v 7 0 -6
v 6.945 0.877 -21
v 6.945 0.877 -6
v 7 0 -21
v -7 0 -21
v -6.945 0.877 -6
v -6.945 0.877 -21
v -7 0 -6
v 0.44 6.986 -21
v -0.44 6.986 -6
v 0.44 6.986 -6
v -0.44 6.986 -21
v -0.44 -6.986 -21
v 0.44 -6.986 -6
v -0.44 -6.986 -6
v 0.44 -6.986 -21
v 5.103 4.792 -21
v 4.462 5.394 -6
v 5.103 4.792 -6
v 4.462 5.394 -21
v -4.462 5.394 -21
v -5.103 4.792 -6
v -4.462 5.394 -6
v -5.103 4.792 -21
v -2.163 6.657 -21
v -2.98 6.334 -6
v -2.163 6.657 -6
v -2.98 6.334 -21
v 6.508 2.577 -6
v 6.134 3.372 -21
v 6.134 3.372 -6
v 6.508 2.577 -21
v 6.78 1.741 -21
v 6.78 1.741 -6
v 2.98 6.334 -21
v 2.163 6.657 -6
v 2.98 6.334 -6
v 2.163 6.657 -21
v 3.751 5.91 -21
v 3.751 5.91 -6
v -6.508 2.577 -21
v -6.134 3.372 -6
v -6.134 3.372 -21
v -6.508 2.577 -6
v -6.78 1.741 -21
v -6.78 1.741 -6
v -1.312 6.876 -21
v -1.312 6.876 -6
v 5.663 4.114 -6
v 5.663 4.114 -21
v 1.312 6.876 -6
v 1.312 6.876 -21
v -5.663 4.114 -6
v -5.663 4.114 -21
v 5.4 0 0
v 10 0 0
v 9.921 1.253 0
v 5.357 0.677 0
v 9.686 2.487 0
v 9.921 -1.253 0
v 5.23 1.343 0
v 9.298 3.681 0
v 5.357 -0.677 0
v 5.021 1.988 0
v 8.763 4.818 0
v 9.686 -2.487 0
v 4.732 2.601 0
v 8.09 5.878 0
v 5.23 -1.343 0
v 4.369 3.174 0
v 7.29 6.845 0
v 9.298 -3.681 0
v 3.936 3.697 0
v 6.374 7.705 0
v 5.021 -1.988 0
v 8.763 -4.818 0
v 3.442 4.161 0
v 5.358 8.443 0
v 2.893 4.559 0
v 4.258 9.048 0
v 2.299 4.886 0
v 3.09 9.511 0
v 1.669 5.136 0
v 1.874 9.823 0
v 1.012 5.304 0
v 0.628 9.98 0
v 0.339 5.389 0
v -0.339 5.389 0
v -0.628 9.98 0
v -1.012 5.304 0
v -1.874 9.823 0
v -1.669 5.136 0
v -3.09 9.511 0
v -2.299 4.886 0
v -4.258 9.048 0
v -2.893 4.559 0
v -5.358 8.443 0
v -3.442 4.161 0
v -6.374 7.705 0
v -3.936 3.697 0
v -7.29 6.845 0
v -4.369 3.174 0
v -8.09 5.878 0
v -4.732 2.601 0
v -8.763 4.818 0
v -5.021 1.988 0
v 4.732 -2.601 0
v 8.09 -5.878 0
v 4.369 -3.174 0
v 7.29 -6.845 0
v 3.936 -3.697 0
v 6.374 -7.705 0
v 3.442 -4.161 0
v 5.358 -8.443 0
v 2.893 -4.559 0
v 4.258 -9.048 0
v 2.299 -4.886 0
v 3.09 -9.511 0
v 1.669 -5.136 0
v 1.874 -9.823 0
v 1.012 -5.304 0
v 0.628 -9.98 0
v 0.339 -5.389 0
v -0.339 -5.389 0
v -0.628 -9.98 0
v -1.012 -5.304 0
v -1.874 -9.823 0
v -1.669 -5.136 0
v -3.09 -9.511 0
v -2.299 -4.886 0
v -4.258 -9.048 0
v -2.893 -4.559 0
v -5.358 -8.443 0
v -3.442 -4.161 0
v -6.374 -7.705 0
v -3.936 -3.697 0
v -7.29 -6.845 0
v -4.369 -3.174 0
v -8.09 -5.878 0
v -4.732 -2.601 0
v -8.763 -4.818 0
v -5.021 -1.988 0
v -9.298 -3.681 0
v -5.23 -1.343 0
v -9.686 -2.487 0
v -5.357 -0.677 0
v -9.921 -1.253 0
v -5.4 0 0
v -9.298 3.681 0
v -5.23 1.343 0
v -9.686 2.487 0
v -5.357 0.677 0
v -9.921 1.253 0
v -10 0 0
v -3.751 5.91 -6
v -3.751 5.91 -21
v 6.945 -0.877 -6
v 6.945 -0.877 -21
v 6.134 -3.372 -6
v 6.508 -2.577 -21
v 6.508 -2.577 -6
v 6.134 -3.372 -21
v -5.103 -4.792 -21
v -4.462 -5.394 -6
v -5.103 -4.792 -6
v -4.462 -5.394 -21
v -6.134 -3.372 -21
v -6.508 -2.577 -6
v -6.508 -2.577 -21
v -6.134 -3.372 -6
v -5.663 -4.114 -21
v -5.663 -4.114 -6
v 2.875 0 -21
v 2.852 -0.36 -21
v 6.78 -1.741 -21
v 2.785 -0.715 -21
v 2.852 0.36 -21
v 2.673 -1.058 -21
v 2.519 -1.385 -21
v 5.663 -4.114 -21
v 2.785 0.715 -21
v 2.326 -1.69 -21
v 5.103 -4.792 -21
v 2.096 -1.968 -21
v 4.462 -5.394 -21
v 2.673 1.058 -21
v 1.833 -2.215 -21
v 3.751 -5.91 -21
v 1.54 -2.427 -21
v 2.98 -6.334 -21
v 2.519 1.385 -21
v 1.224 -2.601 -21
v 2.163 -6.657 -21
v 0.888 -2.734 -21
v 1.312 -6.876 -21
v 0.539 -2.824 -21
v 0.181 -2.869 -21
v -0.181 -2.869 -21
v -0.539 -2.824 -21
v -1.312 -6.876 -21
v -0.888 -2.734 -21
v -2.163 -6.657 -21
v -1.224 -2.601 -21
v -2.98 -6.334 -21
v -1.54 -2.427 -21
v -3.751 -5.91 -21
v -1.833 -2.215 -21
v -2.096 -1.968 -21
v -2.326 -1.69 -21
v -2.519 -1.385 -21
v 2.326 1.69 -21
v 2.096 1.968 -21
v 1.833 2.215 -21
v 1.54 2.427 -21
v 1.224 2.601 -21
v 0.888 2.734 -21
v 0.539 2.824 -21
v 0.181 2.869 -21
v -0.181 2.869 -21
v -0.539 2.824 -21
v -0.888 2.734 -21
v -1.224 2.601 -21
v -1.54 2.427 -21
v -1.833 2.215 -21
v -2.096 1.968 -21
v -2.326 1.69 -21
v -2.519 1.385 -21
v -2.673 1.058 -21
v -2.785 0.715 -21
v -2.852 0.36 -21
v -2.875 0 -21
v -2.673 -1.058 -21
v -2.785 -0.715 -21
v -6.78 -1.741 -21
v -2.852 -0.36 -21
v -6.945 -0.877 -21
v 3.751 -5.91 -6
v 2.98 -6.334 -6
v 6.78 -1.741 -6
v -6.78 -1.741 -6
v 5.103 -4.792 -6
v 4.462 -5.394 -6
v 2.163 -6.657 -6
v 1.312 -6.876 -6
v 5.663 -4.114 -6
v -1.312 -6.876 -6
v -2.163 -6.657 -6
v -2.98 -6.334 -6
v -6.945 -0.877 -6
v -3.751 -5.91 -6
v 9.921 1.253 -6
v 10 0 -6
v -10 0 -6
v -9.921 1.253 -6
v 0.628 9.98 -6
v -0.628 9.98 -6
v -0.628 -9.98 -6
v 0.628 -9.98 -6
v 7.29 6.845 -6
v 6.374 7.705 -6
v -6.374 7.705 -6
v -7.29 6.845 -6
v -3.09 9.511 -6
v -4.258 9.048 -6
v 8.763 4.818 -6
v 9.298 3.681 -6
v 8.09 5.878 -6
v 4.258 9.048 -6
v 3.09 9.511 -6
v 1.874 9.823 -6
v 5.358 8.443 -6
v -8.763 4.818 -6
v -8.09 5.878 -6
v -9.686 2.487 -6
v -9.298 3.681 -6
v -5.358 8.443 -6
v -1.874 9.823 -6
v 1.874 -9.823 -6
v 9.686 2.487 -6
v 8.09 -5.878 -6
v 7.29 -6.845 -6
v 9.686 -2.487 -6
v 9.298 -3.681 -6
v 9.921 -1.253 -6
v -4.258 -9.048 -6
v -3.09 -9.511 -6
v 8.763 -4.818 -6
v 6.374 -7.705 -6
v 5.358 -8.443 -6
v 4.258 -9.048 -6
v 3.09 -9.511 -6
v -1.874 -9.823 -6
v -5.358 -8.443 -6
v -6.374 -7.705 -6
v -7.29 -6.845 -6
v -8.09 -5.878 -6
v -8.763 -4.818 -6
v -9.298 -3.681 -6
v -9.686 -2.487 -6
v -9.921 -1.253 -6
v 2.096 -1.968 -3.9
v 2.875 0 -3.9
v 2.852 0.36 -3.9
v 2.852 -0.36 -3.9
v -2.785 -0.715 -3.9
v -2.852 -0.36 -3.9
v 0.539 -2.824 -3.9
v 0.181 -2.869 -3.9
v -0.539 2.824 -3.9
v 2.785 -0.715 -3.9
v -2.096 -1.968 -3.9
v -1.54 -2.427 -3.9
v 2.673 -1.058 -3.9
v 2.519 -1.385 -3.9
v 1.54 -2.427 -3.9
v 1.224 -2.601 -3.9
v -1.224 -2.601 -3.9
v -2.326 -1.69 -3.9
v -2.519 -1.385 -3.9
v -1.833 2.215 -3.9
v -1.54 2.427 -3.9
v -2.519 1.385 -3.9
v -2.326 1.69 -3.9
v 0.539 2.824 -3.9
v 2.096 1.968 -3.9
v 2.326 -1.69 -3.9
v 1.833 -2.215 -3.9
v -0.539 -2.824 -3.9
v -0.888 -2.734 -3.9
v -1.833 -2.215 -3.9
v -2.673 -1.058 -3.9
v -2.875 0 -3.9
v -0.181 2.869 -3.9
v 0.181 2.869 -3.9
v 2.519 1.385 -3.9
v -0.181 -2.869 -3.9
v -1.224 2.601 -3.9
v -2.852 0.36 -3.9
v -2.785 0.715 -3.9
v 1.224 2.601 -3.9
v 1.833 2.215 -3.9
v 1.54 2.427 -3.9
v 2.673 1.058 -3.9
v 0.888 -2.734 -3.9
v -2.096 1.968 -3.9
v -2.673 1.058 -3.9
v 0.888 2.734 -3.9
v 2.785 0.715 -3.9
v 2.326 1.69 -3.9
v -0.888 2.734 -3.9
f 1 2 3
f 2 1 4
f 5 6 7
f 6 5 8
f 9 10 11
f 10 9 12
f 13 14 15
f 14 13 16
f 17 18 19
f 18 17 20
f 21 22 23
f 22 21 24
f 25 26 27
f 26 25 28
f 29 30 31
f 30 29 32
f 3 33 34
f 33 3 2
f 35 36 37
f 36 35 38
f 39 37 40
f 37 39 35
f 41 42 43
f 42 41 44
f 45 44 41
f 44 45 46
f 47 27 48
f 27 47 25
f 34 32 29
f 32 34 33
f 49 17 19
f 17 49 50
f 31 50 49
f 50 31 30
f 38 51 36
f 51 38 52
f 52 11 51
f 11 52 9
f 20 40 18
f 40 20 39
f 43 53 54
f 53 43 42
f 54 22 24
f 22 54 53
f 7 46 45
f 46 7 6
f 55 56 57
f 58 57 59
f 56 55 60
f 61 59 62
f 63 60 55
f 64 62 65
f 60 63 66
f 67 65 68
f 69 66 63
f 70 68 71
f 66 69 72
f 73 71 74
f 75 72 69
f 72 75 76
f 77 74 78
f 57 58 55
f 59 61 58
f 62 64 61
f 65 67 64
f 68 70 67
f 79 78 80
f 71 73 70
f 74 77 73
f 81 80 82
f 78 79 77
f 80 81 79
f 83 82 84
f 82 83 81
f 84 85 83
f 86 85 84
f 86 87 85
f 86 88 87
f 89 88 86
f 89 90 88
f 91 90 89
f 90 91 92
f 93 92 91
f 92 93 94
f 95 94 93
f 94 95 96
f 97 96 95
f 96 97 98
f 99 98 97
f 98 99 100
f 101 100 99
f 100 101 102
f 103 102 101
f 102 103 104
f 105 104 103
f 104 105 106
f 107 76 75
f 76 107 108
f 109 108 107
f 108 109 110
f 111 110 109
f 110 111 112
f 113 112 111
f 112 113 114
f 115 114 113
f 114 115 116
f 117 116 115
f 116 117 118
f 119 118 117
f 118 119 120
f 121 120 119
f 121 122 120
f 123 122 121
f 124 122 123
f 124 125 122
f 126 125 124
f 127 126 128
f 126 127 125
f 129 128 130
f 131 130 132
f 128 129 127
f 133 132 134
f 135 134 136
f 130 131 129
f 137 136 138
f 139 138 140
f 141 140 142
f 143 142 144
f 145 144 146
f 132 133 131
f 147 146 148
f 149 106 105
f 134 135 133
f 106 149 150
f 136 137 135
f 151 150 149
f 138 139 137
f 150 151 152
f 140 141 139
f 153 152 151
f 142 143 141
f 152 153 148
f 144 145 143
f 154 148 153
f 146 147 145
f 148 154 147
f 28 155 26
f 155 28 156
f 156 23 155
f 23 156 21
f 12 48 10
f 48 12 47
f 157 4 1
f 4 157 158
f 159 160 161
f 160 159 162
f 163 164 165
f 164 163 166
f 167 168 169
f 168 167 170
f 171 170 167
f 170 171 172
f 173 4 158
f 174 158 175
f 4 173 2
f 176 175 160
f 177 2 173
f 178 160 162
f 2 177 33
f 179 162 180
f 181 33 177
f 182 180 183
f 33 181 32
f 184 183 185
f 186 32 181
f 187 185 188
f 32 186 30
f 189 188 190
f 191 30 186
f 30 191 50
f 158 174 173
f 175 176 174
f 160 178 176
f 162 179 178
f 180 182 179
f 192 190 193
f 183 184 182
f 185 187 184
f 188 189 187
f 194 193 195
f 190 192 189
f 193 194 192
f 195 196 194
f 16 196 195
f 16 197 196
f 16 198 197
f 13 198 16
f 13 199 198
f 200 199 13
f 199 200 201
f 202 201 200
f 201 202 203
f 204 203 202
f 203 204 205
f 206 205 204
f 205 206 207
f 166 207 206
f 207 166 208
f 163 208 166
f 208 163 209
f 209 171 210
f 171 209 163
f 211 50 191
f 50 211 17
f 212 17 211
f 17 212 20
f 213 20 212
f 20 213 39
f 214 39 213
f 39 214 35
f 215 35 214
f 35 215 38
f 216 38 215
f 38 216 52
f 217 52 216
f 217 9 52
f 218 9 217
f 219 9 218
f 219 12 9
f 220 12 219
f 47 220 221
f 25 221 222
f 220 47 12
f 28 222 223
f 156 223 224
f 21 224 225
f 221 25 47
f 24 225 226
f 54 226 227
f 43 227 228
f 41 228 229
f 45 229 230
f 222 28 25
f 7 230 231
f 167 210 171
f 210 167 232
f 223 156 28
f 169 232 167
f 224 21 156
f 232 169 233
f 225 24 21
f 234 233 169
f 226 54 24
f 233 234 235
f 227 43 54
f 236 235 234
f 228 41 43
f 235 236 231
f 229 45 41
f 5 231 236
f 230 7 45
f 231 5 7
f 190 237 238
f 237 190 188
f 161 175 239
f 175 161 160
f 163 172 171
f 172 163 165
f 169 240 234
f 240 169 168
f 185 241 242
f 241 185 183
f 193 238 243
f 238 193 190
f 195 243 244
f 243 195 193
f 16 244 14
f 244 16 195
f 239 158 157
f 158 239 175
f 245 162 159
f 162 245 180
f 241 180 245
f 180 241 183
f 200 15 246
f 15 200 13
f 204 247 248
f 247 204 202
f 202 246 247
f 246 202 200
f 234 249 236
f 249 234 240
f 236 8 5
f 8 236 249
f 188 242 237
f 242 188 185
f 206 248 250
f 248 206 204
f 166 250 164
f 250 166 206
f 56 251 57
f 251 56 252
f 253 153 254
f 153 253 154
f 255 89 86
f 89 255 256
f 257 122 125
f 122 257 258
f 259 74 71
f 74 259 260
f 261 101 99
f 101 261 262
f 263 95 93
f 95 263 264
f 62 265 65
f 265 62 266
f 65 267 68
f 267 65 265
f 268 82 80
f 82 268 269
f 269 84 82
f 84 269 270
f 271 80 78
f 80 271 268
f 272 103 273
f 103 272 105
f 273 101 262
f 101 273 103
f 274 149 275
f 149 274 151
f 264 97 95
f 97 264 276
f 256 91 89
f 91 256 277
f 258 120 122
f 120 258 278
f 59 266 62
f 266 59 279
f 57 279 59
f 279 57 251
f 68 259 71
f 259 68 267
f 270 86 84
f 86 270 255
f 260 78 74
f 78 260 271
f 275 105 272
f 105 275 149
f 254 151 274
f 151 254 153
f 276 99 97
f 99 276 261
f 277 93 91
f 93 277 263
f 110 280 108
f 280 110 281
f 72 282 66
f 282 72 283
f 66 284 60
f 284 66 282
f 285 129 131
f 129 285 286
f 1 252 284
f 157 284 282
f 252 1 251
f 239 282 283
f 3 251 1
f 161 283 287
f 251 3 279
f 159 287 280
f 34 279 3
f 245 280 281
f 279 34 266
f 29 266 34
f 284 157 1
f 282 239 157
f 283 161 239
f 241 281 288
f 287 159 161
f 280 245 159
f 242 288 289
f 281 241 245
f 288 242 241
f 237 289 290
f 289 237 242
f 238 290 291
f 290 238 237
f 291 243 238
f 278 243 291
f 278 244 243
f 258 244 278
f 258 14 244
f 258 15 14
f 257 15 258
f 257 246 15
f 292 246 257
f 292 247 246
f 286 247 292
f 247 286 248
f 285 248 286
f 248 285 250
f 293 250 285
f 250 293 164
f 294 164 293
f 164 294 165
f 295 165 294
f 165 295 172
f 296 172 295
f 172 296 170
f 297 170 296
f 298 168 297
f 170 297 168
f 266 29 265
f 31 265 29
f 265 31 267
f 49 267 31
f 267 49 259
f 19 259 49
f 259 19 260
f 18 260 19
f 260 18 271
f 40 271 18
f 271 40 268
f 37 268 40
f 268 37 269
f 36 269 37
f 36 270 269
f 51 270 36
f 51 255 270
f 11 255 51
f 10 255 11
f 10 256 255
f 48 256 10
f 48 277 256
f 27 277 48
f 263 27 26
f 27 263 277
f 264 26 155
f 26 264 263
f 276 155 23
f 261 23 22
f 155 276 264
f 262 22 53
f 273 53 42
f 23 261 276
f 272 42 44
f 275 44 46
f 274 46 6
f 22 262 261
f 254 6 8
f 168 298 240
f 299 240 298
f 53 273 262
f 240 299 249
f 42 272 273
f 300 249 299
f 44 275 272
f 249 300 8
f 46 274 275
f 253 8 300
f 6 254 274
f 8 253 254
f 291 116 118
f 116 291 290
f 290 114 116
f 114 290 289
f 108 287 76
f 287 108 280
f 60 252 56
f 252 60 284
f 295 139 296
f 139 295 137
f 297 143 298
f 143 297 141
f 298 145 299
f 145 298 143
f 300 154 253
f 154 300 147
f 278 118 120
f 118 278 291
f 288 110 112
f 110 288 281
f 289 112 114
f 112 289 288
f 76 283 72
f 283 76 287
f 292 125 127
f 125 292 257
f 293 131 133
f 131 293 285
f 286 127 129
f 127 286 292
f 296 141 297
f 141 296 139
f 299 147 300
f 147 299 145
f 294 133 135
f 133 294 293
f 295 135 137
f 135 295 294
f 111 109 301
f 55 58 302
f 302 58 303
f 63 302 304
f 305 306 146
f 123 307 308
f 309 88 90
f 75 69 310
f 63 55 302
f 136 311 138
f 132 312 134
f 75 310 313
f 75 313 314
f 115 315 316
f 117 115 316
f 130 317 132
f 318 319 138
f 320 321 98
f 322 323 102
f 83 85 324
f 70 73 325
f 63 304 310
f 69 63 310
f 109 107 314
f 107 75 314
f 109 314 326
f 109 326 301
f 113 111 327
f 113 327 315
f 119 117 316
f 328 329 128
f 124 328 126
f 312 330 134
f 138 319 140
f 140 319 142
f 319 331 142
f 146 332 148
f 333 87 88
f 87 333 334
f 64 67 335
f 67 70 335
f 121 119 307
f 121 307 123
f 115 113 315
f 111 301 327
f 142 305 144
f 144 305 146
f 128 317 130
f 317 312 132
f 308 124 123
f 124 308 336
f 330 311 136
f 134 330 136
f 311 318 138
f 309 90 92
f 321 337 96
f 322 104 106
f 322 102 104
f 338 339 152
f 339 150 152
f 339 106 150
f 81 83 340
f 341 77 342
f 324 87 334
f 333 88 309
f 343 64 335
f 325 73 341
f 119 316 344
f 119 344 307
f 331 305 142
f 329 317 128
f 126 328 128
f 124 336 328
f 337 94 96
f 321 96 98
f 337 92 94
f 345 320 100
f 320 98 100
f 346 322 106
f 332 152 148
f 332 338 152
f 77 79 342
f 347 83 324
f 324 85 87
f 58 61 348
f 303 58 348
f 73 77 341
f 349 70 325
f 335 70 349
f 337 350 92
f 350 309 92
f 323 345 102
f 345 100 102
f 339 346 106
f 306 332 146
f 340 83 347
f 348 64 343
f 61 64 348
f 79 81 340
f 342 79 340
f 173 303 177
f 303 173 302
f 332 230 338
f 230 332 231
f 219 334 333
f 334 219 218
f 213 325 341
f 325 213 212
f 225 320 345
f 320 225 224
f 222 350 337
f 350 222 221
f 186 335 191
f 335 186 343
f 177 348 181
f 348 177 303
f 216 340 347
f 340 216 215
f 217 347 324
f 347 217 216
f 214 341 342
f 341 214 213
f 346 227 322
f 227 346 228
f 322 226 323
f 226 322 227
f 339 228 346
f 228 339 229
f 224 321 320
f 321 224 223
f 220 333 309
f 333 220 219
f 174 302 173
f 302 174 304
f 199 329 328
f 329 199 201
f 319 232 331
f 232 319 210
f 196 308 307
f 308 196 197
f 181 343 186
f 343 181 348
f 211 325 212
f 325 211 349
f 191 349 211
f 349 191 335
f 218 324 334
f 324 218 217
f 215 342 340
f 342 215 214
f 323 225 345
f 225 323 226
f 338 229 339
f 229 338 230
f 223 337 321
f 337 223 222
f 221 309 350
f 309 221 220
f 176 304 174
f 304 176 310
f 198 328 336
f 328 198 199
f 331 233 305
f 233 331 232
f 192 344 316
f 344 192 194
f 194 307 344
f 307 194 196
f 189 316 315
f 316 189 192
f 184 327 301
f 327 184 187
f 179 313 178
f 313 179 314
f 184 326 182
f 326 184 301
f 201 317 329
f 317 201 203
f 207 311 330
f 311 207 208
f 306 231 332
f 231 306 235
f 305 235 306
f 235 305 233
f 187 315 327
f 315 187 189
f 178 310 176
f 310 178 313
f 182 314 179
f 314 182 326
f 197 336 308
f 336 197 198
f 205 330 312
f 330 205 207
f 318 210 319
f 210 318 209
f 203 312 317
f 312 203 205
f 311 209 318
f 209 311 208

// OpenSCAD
$fn = 50;


difference() {
	union() {
		translate(v = [0, 0, -21.0000000000]) {
			cylinder(h = 21, r = 7.0000000000);
		}
		translate(v = [0, 0, -6.0000000000]) {
			cylinder(h = 6, r = 10.0000000000);
		}
	}
	union() {
		translate(v = [0, 0, 0]) {
			rotate(a = [0, 0, 0]) {
				difference() {
					union() {
						#translate(v = [0, 0, -21.0000000000]) {
							cylinder(h = 21, r = 2.6000000000);
						}
						#translate(v = [0, 0, -3.9000000000]) {
							cylinder(h = 3.9000000000, r = 7.0000000000, r1 = 2.8750000000, r2 = 5.4000000000);
						}
						#translate(v = [0, 0, -21.0000000000]) {
							cylinder(h = 21, r = 2.8750000000);
						}
						#translate(v = [0, 0, -21.0000000000]) {
							cylinder(h = 21, r = 2.6000000000);
						}
					}
					union();
				}
			}
		}
	}
}
